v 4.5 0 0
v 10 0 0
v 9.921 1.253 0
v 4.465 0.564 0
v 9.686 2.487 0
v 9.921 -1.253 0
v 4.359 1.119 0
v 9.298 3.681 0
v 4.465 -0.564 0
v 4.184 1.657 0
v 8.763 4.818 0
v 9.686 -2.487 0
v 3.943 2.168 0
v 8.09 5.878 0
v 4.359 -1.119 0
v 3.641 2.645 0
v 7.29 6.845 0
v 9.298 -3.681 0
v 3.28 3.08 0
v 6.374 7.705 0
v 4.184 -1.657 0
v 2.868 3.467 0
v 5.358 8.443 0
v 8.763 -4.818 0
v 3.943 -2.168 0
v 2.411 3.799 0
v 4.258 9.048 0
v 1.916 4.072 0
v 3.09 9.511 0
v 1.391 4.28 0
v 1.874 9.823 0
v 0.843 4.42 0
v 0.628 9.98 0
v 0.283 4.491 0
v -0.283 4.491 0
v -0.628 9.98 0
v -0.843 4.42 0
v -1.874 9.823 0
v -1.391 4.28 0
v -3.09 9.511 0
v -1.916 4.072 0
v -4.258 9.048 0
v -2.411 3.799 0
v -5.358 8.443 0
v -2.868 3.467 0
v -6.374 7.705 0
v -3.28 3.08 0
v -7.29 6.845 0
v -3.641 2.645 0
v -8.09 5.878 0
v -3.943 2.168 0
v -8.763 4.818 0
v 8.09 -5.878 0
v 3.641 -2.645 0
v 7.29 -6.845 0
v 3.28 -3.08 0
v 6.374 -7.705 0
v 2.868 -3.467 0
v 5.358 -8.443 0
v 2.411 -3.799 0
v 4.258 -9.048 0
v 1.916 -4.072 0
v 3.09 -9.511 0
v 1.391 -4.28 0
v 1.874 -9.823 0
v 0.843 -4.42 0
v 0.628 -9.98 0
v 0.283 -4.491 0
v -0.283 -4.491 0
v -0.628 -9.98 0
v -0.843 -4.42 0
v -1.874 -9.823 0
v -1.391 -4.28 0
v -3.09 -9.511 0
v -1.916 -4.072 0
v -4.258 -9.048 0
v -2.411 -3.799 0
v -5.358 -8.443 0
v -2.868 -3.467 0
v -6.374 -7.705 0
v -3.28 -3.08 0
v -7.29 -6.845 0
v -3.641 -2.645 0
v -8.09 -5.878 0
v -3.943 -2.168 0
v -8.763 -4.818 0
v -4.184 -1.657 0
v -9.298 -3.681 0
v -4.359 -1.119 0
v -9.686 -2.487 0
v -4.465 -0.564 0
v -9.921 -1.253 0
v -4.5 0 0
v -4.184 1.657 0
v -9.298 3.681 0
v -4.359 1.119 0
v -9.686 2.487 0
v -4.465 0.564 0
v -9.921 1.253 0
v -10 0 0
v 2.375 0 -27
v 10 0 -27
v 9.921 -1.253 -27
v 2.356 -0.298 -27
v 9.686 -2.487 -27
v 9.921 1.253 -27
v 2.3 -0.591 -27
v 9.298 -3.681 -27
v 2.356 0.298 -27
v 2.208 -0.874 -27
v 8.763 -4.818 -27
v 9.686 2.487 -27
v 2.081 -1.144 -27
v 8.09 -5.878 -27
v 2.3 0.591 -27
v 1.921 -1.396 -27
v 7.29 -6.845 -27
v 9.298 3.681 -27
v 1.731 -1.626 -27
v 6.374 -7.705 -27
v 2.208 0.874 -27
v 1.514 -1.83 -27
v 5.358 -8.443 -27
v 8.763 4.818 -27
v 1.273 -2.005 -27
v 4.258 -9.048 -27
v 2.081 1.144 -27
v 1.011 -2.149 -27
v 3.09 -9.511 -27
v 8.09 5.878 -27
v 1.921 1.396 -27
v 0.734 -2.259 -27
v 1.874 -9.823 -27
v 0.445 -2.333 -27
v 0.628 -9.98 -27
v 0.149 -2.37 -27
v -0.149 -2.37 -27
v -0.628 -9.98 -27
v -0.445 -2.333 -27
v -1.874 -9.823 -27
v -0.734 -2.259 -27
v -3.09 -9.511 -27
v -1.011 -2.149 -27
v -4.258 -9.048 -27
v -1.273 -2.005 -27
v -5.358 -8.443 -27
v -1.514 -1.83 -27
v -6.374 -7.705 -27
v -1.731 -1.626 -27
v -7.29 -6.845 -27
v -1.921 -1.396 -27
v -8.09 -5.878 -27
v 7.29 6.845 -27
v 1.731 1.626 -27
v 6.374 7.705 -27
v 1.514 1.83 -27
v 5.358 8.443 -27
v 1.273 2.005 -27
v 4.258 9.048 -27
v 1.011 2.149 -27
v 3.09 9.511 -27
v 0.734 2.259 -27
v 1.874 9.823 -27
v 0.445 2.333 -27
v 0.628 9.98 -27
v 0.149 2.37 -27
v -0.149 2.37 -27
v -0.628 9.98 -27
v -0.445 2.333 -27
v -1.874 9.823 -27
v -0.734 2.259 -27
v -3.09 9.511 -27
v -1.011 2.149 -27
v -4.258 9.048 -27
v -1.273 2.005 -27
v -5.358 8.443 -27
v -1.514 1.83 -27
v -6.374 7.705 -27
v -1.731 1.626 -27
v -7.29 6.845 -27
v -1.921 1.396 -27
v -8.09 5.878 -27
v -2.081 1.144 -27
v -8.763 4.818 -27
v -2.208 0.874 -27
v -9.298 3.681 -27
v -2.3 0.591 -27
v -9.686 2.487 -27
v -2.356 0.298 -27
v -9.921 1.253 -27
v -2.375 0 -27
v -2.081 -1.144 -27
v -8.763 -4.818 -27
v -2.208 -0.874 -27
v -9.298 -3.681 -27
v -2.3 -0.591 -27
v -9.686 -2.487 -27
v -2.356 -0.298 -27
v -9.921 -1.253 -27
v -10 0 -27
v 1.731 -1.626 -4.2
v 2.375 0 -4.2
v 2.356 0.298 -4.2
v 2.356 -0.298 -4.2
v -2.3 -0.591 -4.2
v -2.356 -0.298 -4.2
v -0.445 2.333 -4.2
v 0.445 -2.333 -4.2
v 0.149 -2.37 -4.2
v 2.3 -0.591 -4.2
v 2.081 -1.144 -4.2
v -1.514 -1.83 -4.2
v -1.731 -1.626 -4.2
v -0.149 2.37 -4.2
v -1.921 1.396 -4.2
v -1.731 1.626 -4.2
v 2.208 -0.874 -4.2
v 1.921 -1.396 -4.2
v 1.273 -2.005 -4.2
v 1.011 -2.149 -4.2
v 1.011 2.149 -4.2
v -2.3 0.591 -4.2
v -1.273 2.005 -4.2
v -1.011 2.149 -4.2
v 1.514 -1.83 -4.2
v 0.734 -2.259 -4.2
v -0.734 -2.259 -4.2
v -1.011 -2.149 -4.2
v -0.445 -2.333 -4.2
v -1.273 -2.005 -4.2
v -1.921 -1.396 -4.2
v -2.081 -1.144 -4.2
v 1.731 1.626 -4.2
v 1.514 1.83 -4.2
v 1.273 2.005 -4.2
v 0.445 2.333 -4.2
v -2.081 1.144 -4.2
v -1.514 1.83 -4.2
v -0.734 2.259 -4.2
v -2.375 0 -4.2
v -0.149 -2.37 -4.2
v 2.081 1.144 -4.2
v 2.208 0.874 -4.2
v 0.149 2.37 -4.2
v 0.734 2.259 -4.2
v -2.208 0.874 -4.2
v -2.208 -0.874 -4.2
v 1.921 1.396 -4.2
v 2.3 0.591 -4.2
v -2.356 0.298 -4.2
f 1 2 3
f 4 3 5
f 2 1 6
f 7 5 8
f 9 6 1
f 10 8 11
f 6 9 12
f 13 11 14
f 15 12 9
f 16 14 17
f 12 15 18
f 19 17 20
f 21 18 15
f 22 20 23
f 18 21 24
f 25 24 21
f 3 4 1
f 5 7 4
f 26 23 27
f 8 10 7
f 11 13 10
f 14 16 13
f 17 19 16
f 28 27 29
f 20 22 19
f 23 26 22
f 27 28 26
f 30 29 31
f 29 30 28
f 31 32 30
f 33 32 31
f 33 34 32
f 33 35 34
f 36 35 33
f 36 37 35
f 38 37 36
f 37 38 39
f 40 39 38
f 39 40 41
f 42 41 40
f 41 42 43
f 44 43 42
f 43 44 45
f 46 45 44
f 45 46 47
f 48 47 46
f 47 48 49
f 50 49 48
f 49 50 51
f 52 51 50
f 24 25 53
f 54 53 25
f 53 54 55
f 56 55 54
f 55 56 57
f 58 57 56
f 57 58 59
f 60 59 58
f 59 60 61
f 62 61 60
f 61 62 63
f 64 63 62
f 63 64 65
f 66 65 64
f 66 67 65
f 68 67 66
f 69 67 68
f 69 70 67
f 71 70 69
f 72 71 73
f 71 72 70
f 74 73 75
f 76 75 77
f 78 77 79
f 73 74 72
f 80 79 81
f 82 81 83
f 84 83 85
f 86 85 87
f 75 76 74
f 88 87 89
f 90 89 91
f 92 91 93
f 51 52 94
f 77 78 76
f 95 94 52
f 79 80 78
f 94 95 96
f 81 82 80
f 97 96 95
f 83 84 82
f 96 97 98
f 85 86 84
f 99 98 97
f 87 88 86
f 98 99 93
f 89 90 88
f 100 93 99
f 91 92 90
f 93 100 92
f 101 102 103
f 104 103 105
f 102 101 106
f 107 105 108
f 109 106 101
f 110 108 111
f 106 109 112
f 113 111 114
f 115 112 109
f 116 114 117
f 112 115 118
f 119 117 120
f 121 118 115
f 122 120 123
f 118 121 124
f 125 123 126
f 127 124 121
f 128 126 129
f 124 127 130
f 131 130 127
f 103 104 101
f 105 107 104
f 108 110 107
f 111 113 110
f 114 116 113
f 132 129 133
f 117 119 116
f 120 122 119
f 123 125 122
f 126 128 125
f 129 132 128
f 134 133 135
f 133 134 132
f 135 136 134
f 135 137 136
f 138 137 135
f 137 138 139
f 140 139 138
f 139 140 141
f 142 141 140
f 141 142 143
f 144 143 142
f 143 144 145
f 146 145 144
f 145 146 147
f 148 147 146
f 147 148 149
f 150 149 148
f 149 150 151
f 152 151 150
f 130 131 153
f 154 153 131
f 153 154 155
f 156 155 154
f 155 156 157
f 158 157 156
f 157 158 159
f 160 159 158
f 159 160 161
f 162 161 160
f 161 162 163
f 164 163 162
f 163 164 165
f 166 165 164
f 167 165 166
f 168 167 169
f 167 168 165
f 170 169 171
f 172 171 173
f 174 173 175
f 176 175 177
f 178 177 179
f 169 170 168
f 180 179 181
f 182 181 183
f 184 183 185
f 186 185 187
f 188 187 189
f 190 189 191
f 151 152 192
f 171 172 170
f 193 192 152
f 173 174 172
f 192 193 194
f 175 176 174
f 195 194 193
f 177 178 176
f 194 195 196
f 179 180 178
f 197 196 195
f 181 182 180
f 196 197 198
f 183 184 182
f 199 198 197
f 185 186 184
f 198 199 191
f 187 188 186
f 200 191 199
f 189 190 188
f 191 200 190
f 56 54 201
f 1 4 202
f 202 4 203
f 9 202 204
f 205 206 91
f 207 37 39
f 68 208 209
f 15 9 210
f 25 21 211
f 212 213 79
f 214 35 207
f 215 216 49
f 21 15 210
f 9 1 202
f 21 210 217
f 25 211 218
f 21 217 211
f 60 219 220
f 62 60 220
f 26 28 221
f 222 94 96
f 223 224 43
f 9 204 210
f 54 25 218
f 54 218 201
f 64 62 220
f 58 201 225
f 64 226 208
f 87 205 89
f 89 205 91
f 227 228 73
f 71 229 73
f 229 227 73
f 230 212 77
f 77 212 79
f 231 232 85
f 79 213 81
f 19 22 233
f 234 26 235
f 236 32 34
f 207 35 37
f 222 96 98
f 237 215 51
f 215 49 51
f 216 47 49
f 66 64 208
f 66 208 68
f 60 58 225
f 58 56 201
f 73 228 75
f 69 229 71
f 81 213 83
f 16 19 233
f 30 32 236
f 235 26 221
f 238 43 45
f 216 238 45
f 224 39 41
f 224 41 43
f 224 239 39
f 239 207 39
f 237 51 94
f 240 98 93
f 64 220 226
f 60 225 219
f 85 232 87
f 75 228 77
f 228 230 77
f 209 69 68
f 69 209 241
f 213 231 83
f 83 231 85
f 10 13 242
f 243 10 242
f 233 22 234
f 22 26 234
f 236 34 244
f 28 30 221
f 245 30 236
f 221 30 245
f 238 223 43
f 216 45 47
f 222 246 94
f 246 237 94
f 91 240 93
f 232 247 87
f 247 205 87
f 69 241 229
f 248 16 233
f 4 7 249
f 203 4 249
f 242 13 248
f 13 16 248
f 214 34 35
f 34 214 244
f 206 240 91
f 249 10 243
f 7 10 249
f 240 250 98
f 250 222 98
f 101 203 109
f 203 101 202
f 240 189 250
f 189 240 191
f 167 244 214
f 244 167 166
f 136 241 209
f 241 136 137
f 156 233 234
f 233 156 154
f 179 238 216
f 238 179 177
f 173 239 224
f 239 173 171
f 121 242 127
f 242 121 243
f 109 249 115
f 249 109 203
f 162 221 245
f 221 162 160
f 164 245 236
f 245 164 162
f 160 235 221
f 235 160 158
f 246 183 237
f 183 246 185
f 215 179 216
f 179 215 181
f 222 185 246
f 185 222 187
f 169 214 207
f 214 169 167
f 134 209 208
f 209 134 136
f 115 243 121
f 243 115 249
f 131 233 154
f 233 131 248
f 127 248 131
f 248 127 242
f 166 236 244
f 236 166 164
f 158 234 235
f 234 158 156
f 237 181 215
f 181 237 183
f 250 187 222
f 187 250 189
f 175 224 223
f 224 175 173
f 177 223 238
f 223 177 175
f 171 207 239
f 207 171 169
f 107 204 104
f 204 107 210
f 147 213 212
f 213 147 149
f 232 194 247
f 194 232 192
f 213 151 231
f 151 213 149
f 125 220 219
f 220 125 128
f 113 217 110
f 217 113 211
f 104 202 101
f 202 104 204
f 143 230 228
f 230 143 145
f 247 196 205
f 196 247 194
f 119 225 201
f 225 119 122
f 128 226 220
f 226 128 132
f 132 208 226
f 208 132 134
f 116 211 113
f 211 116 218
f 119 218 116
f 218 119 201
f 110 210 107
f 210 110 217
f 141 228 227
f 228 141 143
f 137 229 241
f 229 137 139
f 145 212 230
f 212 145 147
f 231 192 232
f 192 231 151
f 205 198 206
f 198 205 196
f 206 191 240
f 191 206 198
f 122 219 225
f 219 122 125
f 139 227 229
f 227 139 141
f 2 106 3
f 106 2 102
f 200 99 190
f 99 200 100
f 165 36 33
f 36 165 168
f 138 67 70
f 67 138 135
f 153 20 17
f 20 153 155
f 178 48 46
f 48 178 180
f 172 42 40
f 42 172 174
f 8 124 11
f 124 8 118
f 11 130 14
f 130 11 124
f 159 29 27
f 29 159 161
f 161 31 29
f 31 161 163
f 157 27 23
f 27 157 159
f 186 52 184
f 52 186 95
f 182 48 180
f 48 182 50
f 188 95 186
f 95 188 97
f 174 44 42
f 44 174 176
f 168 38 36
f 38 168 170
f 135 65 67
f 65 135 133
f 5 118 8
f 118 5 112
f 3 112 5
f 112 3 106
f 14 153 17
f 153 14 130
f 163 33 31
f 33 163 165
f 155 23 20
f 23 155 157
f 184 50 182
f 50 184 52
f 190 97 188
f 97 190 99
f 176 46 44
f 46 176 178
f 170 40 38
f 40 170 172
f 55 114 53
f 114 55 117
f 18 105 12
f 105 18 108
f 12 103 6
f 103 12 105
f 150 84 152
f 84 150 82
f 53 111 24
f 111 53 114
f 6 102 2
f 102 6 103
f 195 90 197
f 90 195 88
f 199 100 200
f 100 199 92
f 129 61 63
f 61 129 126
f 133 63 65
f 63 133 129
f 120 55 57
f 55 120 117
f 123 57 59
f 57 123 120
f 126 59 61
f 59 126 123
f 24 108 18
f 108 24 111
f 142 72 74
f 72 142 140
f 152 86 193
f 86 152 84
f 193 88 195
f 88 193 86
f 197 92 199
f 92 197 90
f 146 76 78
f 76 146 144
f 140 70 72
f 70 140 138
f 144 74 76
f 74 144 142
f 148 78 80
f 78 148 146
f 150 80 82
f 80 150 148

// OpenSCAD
$fn = 50;


difference() {
	union() {
		translate(v = [0, 0, -27.0000000000]) {
			cylinder(h = 27, r = 10.0000000000);
		}
	}
	union() {
		translate(v = [0, 0, 0]) {
			rotate(a = [0, 0, 0]) {
				difference() {
					union() {
						#translate(v = [0, 0, -27.0000000000]) {
							cylinder(h = 27, r = 2.2500000000);
						}
						#translate(v = [0, 0, -4.2000000000]) {
							cylinder(h = 4.2000000000, r1 = 2.3750000000, r2 = 4.5000000000);
						}
						#translate(v = [0, 0, -27.0000000000]) {
							cylinder(h = 27, r = 2.3750000000);
						}
						#translate(v = [0, 0, -27.0000000000]) {
							cylinder(h = 27, r = 2.2500000000);
						}
					}
					union();
				}
			}
		}
	}
}
